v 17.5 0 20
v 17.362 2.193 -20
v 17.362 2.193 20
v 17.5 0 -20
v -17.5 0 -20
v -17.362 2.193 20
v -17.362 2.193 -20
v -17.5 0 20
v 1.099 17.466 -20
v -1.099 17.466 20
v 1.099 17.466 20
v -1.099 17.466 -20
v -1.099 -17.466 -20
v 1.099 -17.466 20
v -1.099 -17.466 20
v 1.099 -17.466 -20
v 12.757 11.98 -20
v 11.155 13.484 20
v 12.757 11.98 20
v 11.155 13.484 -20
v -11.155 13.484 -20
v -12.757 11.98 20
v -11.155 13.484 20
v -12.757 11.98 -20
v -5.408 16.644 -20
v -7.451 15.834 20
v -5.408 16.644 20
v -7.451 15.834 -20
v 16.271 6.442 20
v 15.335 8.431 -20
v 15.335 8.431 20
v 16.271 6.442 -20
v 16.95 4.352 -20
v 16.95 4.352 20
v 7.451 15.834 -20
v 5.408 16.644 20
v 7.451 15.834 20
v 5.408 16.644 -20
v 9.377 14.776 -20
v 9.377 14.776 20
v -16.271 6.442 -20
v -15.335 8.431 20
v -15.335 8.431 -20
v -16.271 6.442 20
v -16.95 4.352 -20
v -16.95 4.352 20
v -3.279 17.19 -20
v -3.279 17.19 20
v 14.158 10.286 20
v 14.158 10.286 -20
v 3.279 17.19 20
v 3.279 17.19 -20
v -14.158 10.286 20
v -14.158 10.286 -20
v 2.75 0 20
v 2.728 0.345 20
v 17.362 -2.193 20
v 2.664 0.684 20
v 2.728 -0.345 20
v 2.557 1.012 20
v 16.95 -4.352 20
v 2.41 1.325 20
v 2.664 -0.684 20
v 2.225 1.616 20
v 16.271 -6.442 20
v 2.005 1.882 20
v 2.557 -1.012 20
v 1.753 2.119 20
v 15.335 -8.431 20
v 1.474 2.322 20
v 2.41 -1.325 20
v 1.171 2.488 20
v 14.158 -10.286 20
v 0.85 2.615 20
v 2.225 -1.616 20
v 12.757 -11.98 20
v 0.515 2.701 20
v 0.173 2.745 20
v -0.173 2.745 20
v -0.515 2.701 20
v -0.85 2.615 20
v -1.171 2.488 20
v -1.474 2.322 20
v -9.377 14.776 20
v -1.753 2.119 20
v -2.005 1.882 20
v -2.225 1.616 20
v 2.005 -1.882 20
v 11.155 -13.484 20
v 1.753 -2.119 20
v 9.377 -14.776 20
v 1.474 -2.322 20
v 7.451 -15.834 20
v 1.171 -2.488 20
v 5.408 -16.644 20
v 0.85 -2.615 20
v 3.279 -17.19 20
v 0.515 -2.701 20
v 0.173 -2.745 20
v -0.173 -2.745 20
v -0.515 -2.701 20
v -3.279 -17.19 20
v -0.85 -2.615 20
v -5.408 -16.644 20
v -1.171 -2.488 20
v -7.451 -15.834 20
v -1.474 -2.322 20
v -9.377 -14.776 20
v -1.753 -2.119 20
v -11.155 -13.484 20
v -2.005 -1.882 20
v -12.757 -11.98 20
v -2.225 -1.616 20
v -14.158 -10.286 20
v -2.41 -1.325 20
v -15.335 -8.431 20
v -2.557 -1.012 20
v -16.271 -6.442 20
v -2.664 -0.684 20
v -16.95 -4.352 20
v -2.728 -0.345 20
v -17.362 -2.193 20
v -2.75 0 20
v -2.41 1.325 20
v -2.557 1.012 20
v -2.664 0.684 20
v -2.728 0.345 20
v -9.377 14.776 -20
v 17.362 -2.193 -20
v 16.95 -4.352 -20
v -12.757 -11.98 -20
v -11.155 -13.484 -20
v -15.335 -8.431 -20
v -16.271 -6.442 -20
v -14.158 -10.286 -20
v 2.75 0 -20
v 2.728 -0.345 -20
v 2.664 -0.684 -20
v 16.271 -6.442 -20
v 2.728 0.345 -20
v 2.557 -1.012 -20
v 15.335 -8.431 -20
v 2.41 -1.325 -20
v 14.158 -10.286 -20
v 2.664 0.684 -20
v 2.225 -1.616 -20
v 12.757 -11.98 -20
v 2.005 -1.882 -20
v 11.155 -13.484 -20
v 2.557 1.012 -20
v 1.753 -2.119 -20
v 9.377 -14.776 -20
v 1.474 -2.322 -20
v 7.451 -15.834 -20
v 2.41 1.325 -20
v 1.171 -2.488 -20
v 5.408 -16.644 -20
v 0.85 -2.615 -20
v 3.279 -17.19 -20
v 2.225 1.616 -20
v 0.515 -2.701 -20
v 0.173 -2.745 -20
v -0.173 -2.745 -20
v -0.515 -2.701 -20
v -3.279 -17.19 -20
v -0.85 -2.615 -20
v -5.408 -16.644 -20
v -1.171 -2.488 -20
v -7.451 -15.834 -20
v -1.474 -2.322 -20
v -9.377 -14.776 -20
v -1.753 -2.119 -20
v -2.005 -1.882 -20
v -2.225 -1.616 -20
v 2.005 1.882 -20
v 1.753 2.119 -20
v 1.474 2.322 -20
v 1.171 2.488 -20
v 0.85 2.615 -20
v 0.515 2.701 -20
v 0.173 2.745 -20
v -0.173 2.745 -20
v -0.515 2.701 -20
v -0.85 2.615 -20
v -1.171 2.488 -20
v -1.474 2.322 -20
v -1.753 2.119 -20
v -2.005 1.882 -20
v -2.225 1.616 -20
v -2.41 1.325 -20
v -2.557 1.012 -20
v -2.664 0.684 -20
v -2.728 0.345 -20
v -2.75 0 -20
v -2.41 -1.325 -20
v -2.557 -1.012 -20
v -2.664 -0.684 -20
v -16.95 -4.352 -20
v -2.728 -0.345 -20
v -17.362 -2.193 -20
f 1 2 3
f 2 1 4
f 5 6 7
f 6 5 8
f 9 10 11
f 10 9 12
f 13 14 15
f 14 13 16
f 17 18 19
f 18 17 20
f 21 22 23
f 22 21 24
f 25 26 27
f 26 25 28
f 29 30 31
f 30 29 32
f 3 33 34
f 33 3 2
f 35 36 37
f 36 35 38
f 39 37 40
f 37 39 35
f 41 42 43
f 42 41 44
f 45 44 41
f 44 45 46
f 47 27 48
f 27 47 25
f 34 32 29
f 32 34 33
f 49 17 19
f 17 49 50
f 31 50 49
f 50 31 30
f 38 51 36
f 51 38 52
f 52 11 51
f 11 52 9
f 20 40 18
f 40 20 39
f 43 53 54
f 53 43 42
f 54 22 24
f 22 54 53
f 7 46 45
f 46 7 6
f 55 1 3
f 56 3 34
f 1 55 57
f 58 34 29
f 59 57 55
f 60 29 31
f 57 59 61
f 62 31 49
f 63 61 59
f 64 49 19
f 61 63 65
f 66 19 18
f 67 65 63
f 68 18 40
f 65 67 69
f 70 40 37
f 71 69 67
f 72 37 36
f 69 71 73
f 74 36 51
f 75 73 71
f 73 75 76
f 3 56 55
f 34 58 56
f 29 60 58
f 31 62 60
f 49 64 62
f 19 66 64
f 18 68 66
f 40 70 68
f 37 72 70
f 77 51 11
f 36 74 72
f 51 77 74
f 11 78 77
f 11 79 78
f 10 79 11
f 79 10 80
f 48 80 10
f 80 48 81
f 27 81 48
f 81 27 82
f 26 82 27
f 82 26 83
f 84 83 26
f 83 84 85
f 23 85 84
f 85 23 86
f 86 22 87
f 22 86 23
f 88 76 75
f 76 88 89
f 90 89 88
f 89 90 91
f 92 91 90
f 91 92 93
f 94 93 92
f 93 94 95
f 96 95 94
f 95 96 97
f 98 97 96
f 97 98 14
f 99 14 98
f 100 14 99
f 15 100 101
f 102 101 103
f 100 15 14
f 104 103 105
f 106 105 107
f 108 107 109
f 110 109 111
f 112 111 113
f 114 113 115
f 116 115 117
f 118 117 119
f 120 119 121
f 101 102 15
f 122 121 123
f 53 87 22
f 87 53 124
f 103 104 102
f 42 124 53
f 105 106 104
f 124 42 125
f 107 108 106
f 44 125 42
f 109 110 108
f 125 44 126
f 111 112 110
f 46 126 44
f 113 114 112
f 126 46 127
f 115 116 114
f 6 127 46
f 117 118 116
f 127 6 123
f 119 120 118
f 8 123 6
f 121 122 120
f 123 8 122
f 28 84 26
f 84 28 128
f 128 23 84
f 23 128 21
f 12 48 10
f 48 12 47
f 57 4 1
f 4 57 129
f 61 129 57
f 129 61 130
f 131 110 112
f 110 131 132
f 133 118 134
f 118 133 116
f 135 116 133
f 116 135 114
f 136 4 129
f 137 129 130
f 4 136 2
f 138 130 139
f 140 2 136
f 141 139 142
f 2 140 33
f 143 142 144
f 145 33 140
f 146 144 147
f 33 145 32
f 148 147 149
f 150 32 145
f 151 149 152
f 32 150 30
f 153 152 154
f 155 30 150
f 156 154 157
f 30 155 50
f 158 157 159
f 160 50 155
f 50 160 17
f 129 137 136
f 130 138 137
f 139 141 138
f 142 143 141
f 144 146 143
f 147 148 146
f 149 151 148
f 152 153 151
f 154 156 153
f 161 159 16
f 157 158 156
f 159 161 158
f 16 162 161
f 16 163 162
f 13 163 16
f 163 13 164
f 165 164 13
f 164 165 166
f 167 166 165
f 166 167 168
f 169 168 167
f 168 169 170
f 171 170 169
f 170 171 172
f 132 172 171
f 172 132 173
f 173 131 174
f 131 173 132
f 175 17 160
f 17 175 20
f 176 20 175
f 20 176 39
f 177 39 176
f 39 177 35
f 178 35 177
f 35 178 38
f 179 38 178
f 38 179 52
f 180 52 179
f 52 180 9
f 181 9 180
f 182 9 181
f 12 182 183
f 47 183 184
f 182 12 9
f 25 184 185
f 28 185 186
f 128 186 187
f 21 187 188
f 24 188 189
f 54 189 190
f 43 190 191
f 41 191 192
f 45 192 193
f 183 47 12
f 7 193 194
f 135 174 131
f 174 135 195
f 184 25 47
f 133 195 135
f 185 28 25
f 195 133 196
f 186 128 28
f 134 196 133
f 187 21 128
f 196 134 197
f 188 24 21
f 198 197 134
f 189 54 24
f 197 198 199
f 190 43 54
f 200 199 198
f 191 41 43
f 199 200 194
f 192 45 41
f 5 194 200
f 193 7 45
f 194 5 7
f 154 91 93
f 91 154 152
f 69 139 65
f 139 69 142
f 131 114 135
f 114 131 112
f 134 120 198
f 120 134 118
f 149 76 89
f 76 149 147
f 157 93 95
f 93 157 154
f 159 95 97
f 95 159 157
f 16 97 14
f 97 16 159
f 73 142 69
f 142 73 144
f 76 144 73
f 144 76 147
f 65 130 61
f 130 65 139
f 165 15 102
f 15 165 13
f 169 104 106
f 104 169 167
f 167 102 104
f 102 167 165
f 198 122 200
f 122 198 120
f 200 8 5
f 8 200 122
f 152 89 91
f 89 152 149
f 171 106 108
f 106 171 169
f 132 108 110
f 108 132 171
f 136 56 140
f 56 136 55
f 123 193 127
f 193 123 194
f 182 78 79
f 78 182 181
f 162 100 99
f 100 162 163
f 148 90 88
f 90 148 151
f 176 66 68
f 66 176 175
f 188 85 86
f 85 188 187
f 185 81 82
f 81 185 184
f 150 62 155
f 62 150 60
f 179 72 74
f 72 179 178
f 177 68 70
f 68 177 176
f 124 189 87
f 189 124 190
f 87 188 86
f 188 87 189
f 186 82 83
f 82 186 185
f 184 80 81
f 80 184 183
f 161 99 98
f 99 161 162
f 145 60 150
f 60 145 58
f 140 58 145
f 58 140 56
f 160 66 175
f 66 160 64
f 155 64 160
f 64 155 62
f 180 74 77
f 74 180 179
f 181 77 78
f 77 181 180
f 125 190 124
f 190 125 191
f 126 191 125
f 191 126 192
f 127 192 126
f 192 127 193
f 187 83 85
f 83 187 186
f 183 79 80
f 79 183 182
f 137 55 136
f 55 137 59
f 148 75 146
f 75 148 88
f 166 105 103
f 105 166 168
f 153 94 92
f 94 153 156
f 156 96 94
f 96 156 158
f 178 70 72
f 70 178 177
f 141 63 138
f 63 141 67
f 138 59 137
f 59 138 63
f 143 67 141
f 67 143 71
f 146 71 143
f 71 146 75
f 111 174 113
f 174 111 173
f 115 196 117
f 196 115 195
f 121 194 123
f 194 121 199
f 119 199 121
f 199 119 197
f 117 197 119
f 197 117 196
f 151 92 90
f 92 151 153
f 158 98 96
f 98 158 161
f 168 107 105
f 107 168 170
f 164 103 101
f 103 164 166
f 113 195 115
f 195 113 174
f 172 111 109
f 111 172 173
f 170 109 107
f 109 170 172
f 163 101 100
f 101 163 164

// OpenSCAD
$fn = 50;


difference() {
	union() {
		translate(v = [0, 0, -20.0000000000]) {
			cylinder(h = 40, r = 17.5000000000);
		}
	}
	union() {
		translate(v = [0, 0, -100.0000000000]) {
			cylinder(h = 200, r = 2.7500000000);
		}
	}
}
